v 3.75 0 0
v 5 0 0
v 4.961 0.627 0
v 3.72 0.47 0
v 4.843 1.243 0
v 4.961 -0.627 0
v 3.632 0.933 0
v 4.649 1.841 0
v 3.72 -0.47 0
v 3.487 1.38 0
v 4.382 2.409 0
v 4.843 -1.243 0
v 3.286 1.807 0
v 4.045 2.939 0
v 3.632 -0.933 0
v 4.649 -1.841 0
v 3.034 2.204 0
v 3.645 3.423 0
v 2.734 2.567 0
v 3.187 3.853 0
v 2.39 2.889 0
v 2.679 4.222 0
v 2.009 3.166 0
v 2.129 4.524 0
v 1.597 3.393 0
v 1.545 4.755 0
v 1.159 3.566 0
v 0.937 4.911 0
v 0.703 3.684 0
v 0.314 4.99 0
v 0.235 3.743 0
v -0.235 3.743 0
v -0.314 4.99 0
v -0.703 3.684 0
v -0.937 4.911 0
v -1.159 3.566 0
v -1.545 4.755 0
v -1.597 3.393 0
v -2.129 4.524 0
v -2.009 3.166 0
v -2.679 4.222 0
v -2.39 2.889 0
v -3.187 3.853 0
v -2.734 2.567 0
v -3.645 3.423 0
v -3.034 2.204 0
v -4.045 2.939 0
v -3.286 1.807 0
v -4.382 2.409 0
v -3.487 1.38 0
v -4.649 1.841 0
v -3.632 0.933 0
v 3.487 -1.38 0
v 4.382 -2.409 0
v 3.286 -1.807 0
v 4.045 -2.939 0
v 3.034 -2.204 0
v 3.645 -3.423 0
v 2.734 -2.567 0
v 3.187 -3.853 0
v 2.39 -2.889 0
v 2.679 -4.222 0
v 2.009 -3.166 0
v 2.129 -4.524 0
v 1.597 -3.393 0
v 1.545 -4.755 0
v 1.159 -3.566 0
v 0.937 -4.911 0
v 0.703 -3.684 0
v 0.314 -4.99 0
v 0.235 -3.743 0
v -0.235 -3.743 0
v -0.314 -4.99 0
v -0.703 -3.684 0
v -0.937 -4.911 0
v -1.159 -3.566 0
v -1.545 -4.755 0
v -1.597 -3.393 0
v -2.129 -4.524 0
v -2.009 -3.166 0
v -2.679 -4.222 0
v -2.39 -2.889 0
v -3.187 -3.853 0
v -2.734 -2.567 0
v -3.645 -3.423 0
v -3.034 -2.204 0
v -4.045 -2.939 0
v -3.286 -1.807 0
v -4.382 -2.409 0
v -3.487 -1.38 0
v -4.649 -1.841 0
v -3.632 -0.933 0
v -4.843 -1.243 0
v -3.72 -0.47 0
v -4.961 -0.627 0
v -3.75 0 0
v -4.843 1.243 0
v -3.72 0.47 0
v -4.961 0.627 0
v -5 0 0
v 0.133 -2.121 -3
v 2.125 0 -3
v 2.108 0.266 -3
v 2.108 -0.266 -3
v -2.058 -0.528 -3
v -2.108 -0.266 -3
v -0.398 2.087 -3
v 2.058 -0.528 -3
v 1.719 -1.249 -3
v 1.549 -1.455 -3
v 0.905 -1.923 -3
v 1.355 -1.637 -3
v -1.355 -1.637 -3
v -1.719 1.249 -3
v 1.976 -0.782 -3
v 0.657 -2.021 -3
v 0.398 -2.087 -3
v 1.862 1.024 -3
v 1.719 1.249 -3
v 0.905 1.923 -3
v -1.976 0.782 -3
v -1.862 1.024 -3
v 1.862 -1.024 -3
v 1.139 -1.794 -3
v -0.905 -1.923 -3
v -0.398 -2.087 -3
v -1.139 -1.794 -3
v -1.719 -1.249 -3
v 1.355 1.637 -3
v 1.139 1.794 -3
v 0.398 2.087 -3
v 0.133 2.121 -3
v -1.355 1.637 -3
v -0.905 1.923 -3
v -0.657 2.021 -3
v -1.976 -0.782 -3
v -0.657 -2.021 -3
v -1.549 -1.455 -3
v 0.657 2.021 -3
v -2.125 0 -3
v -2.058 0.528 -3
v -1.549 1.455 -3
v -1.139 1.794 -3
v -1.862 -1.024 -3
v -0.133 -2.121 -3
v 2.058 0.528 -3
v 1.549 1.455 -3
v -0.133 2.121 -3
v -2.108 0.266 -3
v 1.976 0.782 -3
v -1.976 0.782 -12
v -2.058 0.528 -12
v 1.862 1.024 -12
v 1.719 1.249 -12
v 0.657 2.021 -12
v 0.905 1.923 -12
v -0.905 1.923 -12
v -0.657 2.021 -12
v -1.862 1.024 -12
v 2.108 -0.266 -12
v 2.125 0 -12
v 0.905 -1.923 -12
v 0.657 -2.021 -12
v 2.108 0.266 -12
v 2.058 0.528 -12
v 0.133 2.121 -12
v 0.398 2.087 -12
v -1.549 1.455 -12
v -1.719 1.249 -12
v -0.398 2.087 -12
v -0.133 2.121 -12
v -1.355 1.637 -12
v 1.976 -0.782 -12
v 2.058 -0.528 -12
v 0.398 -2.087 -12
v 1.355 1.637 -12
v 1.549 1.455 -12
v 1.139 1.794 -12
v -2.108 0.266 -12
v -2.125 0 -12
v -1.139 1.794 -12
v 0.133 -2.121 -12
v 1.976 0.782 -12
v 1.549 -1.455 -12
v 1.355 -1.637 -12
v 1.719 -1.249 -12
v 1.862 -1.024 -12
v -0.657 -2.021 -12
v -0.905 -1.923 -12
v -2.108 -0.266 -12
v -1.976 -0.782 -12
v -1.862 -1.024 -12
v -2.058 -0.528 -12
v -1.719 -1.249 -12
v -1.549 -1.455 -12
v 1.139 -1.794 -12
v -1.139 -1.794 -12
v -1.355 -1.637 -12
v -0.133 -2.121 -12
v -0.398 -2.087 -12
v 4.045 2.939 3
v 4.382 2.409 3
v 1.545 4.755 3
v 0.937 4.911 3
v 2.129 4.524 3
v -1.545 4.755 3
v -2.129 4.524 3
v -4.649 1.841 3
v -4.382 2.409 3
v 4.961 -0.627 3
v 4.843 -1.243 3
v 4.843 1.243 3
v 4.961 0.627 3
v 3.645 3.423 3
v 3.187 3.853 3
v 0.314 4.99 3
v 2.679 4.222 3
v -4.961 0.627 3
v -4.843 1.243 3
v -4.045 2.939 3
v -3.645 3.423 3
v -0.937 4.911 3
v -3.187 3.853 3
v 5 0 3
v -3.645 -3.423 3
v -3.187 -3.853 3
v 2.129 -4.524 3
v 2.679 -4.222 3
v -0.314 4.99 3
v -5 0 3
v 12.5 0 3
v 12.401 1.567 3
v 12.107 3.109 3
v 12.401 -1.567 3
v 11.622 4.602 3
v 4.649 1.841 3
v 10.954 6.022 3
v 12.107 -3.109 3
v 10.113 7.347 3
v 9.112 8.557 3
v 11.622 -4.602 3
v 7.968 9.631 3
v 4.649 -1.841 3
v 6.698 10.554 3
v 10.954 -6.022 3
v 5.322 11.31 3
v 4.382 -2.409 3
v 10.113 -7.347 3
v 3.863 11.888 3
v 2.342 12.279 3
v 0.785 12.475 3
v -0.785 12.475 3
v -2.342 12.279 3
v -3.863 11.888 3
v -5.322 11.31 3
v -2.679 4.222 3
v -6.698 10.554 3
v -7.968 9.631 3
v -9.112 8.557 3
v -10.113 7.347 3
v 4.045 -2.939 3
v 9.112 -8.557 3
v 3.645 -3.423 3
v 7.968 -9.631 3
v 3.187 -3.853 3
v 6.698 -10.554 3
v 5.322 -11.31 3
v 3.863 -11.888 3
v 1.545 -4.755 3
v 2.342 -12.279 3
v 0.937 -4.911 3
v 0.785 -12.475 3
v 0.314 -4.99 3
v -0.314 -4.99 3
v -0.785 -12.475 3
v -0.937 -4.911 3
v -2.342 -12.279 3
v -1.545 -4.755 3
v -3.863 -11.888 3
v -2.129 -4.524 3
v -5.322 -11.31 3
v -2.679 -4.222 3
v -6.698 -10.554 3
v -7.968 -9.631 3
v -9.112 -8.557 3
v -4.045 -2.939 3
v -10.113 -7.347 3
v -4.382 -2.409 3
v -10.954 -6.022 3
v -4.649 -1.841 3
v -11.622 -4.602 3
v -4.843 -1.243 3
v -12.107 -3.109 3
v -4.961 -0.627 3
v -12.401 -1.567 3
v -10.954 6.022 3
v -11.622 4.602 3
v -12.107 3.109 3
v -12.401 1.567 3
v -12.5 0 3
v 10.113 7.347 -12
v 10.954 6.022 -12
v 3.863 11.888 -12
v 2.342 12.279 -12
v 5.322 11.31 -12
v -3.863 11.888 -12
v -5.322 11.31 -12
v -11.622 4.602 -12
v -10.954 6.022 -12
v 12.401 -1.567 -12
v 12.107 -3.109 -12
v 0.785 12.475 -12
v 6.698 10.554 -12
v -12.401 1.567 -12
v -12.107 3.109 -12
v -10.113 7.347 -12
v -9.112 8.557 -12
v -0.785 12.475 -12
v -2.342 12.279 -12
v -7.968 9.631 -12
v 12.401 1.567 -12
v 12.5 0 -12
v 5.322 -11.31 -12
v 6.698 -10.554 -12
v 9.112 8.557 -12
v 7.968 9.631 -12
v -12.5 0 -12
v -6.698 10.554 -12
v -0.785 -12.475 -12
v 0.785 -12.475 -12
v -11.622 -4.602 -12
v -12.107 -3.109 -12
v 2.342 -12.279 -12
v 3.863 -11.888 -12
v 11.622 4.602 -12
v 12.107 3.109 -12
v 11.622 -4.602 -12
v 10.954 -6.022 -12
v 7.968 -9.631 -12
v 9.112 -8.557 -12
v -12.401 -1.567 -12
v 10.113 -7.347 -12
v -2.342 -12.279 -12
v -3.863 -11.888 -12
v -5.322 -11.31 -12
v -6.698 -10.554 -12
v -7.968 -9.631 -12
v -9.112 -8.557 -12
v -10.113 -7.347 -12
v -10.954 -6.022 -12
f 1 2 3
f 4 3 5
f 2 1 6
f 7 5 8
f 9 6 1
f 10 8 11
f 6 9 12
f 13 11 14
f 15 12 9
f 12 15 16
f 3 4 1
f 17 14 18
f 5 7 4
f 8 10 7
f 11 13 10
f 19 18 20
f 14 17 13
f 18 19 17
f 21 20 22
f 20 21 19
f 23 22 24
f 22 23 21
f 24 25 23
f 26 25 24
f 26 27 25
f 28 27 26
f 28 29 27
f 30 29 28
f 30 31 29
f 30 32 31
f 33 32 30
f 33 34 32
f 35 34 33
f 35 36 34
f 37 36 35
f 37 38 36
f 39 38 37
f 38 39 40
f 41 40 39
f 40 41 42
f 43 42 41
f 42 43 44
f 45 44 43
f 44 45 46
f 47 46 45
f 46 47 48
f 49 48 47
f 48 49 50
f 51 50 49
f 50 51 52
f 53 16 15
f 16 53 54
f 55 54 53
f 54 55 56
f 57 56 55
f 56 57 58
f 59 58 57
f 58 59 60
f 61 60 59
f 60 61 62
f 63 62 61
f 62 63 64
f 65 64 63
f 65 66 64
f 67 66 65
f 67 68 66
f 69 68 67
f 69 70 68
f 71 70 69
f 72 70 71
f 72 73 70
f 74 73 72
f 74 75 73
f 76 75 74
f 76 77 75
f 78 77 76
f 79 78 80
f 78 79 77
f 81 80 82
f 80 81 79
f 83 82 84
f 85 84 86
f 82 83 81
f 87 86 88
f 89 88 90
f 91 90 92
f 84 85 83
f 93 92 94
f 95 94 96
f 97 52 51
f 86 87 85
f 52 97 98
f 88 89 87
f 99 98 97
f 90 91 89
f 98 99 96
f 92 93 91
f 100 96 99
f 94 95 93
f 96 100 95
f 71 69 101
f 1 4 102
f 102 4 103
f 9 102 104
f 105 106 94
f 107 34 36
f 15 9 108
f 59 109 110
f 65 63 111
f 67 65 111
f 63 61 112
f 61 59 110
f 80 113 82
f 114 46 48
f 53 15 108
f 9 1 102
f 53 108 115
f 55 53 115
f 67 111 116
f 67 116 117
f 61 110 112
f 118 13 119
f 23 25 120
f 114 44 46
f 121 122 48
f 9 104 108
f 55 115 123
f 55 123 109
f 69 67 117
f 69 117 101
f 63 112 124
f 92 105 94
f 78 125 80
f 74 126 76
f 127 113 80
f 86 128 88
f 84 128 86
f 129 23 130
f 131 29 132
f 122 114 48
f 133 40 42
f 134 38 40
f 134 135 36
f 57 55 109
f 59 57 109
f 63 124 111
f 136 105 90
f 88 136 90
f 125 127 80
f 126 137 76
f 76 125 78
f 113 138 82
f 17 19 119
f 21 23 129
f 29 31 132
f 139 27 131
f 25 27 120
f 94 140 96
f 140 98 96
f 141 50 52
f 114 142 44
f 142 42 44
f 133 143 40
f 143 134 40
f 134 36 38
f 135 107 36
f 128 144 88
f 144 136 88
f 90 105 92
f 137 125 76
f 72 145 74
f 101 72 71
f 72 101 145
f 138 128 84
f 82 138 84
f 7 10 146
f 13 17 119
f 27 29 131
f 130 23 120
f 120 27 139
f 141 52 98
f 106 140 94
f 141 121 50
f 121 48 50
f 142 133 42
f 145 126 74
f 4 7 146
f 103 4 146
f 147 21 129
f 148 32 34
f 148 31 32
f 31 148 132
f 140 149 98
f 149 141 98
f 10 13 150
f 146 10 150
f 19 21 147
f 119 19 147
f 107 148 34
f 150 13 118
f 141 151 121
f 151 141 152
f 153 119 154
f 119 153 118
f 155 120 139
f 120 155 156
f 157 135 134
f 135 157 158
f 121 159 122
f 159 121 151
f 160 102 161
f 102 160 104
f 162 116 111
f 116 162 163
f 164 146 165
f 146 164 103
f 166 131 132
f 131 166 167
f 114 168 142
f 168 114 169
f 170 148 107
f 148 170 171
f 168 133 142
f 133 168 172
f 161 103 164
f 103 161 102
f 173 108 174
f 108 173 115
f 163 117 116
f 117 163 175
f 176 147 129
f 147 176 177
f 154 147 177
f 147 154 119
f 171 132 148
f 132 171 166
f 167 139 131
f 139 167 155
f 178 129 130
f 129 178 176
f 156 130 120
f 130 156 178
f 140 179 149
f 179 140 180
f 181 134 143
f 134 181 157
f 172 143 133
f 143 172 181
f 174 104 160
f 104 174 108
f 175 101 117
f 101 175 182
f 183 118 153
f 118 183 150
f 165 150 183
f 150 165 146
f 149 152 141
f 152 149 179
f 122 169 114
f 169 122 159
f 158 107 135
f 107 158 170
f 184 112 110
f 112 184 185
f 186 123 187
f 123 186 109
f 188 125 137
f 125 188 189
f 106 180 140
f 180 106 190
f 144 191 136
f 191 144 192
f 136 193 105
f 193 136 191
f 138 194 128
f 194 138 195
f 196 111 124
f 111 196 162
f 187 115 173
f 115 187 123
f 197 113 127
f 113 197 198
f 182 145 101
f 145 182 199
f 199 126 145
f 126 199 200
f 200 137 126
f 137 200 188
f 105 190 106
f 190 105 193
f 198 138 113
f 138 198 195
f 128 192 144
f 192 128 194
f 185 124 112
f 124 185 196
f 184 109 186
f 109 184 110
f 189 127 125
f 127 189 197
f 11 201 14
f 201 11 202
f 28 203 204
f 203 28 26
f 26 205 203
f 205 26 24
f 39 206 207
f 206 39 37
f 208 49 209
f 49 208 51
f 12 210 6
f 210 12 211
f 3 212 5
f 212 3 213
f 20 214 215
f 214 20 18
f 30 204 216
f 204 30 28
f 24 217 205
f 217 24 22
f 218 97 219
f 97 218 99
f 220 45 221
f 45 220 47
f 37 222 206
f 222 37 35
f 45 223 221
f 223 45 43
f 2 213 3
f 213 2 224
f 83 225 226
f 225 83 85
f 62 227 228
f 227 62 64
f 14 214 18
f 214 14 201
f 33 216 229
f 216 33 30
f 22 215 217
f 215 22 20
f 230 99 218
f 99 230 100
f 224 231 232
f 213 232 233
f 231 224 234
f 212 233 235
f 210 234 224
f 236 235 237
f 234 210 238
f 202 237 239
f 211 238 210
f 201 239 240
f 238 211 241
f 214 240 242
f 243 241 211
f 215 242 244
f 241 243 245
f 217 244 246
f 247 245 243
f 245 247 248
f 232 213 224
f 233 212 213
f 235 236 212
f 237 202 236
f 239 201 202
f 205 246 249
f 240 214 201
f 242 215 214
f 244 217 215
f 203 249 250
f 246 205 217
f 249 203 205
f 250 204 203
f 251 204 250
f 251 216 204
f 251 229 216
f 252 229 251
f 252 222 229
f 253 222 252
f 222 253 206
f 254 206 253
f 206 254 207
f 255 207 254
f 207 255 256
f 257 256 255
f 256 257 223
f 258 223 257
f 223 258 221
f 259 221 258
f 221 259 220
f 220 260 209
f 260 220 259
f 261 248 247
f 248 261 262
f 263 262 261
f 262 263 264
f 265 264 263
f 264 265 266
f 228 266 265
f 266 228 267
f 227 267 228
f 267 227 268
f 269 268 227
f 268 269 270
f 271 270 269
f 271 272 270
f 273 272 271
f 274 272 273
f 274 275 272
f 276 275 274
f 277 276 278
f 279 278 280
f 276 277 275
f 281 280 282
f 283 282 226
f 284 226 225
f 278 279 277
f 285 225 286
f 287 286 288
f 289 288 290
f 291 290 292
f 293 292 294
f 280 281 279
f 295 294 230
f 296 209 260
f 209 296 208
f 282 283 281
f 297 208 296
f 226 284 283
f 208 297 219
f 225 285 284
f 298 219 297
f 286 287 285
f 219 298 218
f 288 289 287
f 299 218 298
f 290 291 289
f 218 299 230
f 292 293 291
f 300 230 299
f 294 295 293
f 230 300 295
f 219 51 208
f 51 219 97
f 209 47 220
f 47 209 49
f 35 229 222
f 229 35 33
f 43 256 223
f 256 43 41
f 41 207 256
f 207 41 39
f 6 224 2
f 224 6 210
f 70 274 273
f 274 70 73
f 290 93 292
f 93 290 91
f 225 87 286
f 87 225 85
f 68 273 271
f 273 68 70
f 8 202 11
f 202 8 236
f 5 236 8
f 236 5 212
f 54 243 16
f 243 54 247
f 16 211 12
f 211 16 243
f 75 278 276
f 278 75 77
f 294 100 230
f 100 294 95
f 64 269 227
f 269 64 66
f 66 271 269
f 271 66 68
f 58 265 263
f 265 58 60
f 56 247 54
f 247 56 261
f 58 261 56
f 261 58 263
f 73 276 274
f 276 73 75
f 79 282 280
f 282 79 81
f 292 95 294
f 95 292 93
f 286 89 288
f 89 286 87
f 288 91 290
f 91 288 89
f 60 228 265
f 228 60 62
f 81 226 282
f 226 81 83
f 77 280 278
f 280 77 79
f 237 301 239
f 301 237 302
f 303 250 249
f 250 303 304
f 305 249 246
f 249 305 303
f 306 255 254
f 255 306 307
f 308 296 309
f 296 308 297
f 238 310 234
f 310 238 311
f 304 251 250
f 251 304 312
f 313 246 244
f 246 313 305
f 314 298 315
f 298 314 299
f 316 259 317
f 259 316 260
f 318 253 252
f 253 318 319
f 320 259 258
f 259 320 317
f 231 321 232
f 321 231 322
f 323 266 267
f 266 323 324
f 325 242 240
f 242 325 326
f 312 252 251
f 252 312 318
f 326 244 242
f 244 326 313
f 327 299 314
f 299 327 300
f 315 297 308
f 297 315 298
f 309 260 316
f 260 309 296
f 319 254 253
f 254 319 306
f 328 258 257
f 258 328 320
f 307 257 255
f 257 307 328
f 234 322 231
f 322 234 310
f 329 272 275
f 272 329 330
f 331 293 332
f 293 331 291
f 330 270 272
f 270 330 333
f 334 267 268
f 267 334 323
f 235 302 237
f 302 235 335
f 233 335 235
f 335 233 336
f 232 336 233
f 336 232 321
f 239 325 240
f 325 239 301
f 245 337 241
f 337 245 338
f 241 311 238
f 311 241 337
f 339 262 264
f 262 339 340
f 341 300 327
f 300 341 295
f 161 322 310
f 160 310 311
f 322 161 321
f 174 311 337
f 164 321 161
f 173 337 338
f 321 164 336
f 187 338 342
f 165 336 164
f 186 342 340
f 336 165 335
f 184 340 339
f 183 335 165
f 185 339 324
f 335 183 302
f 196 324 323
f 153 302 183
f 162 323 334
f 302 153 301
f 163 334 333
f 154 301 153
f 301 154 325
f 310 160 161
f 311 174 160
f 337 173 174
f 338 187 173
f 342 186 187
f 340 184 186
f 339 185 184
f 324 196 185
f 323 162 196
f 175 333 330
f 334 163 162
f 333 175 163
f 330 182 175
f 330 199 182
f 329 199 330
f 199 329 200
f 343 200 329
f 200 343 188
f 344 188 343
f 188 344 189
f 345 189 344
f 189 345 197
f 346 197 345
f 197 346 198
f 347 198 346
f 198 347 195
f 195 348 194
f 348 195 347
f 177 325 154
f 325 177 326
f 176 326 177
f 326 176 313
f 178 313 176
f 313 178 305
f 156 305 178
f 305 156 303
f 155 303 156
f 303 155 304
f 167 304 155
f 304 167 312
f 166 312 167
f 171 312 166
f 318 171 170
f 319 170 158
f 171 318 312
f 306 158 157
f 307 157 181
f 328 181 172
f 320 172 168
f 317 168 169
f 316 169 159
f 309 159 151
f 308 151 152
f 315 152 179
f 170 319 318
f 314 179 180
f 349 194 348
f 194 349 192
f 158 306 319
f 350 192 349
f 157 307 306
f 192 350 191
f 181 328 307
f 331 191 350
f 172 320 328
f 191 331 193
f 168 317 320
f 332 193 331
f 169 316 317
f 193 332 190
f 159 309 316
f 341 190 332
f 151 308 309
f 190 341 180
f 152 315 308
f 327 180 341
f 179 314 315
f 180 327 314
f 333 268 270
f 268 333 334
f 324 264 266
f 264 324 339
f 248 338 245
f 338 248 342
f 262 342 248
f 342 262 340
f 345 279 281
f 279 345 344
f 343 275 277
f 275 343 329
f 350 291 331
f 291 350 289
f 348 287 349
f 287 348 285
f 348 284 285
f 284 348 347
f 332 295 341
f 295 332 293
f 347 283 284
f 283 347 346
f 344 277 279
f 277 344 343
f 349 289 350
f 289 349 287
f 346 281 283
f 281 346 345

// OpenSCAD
$fn = 50;

difference() {
	union() {
		translate(v = [0, 0, -12.0]) {
			cylinder(h = 15, r = 12.5);
		}
	}
	union() {
		translate(v = [0, 0, 0]) {
			rotate(a = [0, 0, 0]) {
				difference() {
					union() {
						translate(v = [0, 0, -15.0]) {
							cylinder(h = 15, r = 2.0);
						}
						translate(v = [0, 0, -3]) {
							cylinder(h = 3, r1 = 2.125, r2 = 3.75);
						}
						translate(v = [0, 0, -15.0]) {
							cylinder(h = 15, r = 2.125);
						}
						translate(v = [0, 0, -15.0]) {
							cylinder(h = 15, r = 2.0);
						}
					}
					union();
				}
			}
		}
		#cylinder(h = 3, r = 5.0);
	}
}
